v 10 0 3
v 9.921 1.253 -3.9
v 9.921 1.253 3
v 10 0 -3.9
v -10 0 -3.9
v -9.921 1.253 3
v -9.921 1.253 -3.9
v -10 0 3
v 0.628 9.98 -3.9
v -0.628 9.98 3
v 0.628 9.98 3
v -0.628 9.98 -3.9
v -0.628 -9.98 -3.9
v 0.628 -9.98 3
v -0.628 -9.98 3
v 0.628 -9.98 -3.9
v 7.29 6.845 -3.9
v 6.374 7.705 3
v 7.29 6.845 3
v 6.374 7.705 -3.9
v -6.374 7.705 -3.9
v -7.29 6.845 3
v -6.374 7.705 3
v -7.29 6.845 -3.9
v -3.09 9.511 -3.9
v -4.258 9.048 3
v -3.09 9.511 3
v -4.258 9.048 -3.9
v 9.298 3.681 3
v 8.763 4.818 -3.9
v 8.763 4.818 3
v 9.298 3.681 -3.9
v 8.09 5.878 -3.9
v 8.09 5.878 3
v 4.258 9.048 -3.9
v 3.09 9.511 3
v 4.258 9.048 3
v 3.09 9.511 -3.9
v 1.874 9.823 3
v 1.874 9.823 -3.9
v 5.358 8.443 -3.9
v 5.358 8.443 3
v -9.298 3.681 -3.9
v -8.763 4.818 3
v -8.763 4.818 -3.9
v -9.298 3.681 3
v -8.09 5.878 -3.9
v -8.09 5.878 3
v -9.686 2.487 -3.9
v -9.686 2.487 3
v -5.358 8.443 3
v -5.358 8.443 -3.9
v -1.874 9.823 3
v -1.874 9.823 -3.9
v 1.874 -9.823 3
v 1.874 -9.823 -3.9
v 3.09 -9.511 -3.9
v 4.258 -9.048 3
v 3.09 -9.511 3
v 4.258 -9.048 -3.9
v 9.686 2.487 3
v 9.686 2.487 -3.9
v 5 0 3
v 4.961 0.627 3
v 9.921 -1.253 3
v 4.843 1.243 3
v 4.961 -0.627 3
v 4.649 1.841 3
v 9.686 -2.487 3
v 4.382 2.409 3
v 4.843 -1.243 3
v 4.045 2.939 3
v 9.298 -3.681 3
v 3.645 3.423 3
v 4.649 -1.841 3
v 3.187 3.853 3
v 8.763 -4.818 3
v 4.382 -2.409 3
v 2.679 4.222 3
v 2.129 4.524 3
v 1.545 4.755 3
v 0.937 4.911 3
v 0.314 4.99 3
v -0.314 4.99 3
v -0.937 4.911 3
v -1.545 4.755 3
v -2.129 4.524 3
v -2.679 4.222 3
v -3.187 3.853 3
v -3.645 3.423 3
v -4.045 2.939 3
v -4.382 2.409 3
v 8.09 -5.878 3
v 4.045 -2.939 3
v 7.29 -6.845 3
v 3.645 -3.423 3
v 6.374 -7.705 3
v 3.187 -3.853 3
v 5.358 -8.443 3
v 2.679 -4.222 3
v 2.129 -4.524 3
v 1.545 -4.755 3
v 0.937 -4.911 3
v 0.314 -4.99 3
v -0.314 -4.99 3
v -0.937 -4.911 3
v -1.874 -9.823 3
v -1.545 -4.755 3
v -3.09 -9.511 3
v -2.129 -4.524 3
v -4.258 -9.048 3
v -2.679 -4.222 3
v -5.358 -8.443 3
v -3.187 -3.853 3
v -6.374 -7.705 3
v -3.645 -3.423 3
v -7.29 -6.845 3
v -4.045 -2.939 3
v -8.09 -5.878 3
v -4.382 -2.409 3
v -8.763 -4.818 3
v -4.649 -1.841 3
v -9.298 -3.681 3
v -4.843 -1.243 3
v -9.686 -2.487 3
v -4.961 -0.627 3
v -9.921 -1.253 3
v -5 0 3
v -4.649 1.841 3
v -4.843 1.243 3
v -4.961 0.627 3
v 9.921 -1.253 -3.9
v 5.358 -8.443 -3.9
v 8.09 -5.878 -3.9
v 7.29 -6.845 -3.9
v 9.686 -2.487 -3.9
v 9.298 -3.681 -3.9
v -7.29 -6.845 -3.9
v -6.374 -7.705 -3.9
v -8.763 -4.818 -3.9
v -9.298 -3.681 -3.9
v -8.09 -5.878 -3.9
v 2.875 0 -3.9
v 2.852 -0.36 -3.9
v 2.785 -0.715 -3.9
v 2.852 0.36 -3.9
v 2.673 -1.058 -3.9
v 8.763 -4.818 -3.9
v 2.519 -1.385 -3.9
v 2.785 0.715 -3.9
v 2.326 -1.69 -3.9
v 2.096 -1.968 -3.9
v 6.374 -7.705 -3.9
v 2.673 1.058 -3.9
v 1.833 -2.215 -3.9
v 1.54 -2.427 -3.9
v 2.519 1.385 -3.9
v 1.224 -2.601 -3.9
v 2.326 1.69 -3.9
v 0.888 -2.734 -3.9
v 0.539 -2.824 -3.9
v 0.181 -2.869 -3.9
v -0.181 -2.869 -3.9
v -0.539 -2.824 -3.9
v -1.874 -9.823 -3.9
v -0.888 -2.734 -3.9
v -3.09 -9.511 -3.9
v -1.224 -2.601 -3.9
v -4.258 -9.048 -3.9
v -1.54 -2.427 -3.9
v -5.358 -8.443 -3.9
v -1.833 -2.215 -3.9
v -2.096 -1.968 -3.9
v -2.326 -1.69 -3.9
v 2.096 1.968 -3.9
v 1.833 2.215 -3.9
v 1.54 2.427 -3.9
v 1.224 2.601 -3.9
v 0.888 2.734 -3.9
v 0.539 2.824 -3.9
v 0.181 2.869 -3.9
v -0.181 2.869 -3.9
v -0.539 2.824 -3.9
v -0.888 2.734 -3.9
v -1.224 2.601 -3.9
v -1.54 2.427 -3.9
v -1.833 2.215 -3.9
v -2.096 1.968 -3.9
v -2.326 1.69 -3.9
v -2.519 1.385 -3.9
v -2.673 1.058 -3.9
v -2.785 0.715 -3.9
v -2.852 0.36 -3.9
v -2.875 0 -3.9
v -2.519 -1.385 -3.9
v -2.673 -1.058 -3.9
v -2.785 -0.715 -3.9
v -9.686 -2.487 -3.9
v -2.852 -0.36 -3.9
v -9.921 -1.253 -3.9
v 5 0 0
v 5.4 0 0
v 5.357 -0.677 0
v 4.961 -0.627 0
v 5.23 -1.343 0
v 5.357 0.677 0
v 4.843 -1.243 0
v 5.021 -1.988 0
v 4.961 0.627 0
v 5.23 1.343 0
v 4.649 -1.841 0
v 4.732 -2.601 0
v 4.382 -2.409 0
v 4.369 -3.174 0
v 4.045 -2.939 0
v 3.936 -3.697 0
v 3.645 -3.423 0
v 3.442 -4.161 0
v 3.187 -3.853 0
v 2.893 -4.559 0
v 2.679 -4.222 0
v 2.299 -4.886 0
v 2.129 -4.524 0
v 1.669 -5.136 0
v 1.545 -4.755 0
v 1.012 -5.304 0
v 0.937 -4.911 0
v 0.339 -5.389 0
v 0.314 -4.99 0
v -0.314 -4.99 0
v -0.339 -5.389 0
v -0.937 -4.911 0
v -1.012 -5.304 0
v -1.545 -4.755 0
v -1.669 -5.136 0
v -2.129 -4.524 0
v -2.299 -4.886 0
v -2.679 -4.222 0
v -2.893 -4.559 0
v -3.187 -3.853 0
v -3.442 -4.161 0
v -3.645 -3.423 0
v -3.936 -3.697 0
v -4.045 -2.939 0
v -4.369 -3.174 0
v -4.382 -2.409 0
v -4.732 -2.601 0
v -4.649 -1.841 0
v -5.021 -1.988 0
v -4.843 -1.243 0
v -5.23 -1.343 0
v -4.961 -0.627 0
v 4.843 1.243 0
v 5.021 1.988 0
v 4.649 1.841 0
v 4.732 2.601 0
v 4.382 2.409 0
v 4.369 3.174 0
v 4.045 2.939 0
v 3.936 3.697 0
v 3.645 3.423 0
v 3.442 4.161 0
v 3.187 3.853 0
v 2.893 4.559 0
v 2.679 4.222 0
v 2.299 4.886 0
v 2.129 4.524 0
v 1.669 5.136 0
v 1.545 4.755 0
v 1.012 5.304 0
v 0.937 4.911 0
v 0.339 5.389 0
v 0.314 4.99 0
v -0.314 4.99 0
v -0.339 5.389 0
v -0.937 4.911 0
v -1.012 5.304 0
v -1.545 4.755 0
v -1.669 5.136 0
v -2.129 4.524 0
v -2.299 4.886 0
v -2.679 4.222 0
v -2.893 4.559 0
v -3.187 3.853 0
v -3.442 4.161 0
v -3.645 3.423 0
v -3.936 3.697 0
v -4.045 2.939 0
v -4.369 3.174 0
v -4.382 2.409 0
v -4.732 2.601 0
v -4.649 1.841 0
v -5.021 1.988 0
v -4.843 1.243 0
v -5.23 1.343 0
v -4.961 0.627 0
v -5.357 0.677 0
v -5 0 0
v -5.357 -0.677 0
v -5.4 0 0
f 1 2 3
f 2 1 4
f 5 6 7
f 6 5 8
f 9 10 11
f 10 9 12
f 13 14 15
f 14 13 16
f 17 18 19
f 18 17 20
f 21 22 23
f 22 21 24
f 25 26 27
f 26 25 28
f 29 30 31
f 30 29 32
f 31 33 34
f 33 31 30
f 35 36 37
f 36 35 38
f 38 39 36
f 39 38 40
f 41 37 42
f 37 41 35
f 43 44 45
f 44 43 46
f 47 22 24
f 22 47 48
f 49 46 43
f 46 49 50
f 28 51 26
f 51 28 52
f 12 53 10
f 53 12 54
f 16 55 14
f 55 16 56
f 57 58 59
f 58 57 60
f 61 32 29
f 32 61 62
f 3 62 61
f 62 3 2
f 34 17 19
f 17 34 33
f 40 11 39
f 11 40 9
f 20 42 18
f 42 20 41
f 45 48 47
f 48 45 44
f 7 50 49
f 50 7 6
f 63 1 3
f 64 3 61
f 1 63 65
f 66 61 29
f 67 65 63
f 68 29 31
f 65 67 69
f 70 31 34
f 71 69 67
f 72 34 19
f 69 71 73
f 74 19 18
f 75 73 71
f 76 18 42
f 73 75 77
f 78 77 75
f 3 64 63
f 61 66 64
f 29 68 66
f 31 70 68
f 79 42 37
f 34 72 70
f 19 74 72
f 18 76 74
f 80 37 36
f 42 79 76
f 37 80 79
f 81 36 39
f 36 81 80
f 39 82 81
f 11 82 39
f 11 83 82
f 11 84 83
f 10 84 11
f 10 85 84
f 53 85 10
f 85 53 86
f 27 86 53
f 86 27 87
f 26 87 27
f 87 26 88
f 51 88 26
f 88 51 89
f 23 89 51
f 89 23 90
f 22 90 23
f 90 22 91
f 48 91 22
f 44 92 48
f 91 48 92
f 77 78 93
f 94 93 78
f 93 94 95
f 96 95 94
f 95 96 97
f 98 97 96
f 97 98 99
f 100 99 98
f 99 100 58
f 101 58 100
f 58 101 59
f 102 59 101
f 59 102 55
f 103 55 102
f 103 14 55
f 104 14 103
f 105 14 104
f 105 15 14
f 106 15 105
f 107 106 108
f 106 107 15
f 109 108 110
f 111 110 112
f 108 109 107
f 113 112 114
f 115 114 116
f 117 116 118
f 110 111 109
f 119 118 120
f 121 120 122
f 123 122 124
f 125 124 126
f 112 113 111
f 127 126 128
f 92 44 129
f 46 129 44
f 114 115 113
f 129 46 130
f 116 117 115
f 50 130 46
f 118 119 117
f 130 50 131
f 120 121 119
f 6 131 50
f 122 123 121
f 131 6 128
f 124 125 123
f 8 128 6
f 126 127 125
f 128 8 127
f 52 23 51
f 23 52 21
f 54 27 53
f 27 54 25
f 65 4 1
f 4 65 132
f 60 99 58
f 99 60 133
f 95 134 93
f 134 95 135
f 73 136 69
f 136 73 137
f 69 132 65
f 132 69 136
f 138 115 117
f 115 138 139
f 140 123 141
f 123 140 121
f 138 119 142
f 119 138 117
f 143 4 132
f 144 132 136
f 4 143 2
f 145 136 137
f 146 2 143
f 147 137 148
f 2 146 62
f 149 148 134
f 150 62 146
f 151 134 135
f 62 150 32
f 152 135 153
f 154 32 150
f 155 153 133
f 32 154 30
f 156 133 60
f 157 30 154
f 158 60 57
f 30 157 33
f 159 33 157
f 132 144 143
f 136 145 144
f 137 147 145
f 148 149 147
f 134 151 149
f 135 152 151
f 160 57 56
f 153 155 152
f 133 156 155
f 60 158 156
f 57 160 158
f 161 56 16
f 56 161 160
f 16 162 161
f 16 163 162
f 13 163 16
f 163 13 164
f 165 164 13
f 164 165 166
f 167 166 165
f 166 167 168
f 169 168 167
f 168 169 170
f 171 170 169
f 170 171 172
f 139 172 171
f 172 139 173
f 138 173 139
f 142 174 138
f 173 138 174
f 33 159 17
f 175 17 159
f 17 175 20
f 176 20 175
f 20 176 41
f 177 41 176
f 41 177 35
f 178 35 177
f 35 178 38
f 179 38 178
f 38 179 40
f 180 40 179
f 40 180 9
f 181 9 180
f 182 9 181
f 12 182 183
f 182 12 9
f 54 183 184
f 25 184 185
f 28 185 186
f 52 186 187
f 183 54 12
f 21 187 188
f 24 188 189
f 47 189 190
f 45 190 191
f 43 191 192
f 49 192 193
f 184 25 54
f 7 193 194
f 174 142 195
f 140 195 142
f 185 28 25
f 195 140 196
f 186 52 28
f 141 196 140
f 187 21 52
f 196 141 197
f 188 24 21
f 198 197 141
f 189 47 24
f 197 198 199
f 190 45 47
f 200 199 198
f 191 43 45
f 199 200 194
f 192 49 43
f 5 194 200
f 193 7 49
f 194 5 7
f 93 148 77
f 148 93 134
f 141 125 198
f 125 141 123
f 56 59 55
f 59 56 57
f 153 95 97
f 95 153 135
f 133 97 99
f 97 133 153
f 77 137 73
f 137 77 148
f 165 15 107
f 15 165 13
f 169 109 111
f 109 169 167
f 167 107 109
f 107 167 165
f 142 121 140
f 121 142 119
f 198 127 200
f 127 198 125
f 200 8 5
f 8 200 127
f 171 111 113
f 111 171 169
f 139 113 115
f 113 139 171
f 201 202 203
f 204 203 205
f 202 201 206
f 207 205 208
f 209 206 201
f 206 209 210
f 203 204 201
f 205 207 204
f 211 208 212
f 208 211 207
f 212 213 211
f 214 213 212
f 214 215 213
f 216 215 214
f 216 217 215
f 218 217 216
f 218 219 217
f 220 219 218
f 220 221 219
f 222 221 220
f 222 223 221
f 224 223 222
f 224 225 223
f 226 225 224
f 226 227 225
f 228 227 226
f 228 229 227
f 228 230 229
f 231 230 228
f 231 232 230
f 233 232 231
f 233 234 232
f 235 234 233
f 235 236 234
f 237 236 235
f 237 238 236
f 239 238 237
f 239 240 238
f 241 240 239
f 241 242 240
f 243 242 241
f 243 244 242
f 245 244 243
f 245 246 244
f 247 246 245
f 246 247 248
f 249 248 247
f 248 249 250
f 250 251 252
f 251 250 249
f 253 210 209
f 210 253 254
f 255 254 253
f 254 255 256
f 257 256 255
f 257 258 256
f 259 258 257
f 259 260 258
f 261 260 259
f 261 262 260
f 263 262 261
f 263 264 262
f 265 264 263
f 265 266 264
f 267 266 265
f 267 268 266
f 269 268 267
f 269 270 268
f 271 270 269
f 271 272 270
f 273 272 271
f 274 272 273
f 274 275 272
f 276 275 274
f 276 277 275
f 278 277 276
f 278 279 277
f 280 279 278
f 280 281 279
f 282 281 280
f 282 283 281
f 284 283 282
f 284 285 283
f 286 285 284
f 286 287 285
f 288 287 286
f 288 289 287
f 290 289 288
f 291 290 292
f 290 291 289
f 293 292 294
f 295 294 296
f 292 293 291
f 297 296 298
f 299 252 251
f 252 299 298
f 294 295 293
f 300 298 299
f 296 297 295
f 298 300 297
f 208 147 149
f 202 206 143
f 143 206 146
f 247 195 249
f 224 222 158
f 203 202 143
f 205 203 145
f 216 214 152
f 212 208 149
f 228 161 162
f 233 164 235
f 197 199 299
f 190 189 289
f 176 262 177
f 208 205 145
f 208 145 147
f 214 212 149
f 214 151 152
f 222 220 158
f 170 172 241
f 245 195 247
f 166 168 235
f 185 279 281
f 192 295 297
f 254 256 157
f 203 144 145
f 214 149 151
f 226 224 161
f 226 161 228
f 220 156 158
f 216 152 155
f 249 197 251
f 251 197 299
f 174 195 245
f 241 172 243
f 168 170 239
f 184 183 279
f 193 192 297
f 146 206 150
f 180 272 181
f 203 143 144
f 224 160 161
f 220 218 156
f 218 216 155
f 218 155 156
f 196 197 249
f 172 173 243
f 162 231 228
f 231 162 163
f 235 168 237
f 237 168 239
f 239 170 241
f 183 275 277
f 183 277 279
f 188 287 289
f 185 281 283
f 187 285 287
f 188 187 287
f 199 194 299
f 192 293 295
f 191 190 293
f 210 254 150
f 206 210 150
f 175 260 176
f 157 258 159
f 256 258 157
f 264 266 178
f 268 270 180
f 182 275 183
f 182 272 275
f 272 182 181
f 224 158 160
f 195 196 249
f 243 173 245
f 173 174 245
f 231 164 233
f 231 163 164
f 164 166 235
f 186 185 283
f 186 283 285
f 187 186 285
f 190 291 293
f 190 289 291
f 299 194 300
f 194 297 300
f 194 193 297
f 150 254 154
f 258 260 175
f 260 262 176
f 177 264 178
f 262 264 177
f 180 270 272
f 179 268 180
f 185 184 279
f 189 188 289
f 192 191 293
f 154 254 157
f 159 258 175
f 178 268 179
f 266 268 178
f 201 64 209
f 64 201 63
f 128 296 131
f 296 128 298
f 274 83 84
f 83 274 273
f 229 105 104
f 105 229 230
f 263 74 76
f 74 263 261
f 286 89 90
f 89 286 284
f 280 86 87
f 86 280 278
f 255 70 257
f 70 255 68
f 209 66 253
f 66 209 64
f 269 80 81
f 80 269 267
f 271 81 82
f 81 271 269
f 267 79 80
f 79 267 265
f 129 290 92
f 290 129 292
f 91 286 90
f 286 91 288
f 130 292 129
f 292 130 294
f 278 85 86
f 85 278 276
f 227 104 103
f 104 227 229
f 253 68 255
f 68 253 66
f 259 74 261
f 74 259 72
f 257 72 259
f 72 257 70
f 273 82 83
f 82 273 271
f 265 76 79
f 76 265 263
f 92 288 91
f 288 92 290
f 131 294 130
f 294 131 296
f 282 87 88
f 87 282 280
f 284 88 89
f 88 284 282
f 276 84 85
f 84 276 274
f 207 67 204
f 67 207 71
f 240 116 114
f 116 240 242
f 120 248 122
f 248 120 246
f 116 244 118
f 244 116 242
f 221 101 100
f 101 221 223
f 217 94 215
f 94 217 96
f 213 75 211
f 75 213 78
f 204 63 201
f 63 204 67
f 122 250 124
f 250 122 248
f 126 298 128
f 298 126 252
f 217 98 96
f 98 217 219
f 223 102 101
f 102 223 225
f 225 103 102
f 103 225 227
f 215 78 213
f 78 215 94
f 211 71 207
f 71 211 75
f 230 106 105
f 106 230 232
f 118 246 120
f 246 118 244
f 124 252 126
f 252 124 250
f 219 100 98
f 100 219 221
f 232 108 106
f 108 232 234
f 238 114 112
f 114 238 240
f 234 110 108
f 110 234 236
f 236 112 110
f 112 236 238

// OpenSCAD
$fn = 50;


difference() {
	union() {
		translate(v = [0, 0, -3.9000000000]) {
			cylinder(h = 6.9000000000, r = 10.0000000000);
		}
		#translate(v = [0, 0, -6.9000000000]) {
			cylinder(h = 6.9000000000, r = 2.8750000000);
		}
	}
	union() {
		translate(v = [0, 0, 0]) {
			rotate(a = [0, 0, 0]) {
				difference() {
					union() {
						translate(v = [0, 0, -6.9000000000]) {
							cylinder(h = 6.9000000000, r = 2.6000000000);
						}
						translate(v = [0, 0, -3.9000000000]) {
							cylinder(h = 3.9000000000, r1 = 2.8750000000, r2 = 5.4000000000);
						}
						translate(v = [0, 0, -6.9000000000]) {
							cylinder(h = 6.9000000000, r = 2.8750000000);
						}
						translate(v = [0, 0, -6.9000000000]) {
							cylinder(h = 6.9000000000, r = 2.6000000000);
						}
					}
					union();
				}
			}
		}
		#cylinder(h = 3, r = 5.0000000000);
	}
}
